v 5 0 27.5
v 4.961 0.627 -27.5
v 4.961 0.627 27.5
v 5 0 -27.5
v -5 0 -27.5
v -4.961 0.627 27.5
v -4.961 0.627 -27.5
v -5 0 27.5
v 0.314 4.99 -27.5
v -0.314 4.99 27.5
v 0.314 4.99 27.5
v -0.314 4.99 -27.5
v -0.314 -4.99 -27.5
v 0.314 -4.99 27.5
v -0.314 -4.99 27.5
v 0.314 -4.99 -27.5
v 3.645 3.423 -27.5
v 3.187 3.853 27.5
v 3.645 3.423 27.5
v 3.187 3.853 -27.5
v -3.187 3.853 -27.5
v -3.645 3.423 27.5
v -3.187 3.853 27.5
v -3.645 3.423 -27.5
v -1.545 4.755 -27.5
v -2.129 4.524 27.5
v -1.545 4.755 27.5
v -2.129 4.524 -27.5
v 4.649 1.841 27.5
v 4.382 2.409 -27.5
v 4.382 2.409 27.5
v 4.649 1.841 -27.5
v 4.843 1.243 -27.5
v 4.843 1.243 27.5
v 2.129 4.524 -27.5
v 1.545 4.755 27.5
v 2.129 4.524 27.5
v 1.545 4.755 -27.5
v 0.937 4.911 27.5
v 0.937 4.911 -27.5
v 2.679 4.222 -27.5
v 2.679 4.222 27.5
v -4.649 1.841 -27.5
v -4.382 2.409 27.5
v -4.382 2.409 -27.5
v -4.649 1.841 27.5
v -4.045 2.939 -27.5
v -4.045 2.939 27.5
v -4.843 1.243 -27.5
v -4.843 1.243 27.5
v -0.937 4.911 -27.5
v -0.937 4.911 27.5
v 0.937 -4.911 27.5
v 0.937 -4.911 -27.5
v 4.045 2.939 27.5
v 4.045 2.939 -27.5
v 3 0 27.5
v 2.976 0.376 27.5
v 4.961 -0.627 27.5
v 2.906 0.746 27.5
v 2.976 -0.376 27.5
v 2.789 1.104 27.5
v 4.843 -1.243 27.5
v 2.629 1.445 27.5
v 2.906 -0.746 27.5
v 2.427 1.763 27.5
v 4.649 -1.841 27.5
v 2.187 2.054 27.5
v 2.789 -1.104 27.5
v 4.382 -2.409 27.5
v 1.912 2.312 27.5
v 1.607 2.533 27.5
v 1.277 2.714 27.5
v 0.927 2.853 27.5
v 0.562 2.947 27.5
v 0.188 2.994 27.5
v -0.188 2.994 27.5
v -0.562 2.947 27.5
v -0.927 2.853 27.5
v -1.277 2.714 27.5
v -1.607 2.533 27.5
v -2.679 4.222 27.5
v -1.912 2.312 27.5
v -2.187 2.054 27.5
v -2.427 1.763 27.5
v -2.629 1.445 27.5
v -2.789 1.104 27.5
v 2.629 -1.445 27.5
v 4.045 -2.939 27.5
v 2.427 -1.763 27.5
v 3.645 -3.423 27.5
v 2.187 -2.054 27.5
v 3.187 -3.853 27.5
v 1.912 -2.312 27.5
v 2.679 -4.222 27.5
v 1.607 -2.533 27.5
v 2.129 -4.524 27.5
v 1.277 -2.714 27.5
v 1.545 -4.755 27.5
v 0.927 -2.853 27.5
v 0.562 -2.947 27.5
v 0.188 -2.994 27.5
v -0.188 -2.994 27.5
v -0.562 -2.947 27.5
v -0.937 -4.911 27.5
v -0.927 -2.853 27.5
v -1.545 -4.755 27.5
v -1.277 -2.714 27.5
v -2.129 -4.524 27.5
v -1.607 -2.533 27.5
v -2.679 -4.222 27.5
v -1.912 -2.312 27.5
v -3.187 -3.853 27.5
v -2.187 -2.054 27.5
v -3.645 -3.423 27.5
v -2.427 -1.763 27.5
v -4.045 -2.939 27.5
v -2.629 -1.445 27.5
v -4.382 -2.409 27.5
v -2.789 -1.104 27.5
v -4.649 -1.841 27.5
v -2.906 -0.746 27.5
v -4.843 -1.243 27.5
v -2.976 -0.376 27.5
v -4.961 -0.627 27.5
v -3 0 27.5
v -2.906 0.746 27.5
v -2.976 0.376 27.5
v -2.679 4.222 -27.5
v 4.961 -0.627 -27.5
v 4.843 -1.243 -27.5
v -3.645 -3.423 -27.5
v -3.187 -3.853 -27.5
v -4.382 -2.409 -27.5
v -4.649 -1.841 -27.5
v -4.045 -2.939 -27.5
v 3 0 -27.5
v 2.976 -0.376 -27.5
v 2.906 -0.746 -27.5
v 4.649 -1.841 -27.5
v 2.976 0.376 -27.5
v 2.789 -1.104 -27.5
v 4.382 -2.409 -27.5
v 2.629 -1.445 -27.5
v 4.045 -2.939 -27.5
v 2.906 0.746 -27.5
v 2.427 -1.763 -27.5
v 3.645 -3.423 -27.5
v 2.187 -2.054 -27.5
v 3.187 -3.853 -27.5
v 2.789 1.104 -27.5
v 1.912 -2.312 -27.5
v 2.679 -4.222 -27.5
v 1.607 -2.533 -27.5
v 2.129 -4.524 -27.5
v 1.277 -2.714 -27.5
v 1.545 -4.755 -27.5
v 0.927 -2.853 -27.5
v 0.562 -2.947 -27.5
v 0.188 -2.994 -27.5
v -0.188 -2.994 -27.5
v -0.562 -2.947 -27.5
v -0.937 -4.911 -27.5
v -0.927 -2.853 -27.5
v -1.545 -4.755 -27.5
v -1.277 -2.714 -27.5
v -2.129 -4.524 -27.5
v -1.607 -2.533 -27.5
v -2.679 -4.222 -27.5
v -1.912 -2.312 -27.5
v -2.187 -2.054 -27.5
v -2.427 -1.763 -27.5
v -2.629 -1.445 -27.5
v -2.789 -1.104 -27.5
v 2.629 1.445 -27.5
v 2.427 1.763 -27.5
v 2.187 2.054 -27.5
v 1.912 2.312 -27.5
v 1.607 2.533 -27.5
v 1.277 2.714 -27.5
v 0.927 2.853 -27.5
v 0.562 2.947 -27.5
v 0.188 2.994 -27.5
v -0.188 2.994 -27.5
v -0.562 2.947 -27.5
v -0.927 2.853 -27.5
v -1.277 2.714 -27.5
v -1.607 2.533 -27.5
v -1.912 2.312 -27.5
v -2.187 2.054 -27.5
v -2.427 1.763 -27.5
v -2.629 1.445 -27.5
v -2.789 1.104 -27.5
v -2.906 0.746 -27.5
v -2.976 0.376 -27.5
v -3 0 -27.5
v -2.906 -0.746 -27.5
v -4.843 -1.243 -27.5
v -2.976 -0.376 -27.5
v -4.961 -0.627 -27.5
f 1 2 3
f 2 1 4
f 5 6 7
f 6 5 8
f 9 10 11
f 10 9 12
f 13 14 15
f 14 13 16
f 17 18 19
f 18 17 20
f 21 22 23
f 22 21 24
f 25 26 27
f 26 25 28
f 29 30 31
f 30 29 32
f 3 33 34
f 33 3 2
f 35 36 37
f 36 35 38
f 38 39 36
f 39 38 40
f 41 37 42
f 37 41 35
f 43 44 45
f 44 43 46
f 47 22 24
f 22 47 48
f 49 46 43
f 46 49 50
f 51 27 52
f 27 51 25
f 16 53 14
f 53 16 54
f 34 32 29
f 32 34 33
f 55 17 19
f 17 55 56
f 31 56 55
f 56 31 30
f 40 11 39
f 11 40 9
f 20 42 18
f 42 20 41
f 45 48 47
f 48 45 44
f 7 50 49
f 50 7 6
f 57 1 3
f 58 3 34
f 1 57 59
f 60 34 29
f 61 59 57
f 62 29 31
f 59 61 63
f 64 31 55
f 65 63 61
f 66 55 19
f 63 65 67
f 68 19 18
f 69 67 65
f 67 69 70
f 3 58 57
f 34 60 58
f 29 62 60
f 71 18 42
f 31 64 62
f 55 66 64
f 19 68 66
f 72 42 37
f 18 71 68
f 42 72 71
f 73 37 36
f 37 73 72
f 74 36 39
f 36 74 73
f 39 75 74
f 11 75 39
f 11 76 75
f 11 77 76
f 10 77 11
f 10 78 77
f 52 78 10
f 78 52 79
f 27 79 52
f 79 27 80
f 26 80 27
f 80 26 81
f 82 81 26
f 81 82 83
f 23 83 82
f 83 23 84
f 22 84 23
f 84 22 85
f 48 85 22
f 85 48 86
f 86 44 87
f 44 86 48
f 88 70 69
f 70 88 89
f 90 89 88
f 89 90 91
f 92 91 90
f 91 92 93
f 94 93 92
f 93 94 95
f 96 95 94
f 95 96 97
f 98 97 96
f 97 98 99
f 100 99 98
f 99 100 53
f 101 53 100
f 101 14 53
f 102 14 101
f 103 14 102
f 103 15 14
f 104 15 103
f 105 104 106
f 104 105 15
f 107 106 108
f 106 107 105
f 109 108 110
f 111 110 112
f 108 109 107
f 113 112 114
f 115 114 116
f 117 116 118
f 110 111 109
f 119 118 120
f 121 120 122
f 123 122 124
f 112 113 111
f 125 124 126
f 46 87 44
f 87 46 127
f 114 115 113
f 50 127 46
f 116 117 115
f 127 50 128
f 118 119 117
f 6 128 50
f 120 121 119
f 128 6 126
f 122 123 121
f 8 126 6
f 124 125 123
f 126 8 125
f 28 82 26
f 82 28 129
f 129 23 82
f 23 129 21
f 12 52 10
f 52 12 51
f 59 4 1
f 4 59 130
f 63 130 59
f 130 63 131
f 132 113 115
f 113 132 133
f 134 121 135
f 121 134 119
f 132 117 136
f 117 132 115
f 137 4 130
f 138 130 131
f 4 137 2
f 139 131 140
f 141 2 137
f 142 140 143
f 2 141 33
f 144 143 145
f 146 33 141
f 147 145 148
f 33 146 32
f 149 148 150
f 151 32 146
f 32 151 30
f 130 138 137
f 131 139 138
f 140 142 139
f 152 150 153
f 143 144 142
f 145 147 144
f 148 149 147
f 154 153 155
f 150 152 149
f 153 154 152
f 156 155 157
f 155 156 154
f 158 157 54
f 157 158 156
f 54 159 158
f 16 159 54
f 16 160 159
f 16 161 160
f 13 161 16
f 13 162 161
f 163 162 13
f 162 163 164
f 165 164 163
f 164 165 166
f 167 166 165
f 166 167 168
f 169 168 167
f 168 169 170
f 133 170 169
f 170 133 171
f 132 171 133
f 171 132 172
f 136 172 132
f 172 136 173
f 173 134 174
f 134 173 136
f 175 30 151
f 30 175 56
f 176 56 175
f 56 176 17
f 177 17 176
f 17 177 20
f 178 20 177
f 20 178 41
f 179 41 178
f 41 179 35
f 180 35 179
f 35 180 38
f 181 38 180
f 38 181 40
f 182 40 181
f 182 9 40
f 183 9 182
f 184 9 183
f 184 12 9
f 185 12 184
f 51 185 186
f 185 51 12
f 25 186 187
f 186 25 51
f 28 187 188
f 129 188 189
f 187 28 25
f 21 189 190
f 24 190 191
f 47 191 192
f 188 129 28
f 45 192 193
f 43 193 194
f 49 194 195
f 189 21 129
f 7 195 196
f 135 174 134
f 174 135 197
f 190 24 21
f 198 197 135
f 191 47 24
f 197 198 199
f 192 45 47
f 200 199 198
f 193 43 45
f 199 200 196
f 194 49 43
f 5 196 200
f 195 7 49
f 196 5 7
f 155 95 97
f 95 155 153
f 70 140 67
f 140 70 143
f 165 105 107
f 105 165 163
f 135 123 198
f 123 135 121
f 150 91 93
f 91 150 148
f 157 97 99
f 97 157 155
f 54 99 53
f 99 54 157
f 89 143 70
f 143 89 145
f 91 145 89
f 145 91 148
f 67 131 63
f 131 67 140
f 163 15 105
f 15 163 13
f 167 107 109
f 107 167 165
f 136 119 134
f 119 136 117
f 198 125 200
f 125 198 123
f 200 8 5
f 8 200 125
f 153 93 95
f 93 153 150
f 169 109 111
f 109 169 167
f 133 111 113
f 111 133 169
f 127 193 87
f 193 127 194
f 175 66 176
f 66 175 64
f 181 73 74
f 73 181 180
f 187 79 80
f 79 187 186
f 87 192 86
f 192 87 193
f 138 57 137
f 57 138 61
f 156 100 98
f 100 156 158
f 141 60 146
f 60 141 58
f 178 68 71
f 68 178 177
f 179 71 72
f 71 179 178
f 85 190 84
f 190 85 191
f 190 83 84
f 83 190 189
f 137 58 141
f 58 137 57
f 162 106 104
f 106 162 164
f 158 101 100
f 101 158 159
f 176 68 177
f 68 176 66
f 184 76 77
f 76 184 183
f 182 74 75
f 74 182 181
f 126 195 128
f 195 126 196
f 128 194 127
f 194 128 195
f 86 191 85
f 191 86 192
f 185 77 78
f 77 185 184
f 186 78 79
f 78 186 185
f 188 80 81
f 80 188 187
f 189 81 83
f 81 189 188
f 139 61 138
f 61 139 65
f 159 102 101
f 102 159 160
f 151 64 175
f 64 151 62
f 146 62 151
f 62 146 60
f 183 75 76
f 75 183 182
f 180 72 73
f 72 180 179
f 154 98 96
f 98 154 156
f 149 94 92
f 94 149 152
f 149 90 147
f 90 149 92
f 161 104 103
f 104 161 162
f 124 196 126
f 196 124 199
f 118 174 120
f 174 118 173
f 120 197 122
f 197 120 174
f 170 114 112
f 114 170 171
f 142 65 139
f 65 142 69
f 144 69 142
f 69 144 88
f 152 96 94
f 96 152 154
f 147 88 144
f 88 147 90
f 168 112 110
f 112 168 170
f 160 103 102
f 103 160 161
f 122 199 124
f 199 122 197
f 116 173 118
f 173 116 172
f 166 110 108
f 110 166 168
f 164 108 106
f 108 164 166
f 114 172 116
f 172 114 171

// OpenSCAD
$fn = 50;


difference() {
	union() {
		translate(v = [0, 0, -27.5000000000]) {
			cylinder(h = 55, r = 5.0000000000);
		}
	}
	union() {
		translate(v = [0, 0, -100.0000000000]) {
			cylinder(h = 200, r = 3);
		}
	}
}
